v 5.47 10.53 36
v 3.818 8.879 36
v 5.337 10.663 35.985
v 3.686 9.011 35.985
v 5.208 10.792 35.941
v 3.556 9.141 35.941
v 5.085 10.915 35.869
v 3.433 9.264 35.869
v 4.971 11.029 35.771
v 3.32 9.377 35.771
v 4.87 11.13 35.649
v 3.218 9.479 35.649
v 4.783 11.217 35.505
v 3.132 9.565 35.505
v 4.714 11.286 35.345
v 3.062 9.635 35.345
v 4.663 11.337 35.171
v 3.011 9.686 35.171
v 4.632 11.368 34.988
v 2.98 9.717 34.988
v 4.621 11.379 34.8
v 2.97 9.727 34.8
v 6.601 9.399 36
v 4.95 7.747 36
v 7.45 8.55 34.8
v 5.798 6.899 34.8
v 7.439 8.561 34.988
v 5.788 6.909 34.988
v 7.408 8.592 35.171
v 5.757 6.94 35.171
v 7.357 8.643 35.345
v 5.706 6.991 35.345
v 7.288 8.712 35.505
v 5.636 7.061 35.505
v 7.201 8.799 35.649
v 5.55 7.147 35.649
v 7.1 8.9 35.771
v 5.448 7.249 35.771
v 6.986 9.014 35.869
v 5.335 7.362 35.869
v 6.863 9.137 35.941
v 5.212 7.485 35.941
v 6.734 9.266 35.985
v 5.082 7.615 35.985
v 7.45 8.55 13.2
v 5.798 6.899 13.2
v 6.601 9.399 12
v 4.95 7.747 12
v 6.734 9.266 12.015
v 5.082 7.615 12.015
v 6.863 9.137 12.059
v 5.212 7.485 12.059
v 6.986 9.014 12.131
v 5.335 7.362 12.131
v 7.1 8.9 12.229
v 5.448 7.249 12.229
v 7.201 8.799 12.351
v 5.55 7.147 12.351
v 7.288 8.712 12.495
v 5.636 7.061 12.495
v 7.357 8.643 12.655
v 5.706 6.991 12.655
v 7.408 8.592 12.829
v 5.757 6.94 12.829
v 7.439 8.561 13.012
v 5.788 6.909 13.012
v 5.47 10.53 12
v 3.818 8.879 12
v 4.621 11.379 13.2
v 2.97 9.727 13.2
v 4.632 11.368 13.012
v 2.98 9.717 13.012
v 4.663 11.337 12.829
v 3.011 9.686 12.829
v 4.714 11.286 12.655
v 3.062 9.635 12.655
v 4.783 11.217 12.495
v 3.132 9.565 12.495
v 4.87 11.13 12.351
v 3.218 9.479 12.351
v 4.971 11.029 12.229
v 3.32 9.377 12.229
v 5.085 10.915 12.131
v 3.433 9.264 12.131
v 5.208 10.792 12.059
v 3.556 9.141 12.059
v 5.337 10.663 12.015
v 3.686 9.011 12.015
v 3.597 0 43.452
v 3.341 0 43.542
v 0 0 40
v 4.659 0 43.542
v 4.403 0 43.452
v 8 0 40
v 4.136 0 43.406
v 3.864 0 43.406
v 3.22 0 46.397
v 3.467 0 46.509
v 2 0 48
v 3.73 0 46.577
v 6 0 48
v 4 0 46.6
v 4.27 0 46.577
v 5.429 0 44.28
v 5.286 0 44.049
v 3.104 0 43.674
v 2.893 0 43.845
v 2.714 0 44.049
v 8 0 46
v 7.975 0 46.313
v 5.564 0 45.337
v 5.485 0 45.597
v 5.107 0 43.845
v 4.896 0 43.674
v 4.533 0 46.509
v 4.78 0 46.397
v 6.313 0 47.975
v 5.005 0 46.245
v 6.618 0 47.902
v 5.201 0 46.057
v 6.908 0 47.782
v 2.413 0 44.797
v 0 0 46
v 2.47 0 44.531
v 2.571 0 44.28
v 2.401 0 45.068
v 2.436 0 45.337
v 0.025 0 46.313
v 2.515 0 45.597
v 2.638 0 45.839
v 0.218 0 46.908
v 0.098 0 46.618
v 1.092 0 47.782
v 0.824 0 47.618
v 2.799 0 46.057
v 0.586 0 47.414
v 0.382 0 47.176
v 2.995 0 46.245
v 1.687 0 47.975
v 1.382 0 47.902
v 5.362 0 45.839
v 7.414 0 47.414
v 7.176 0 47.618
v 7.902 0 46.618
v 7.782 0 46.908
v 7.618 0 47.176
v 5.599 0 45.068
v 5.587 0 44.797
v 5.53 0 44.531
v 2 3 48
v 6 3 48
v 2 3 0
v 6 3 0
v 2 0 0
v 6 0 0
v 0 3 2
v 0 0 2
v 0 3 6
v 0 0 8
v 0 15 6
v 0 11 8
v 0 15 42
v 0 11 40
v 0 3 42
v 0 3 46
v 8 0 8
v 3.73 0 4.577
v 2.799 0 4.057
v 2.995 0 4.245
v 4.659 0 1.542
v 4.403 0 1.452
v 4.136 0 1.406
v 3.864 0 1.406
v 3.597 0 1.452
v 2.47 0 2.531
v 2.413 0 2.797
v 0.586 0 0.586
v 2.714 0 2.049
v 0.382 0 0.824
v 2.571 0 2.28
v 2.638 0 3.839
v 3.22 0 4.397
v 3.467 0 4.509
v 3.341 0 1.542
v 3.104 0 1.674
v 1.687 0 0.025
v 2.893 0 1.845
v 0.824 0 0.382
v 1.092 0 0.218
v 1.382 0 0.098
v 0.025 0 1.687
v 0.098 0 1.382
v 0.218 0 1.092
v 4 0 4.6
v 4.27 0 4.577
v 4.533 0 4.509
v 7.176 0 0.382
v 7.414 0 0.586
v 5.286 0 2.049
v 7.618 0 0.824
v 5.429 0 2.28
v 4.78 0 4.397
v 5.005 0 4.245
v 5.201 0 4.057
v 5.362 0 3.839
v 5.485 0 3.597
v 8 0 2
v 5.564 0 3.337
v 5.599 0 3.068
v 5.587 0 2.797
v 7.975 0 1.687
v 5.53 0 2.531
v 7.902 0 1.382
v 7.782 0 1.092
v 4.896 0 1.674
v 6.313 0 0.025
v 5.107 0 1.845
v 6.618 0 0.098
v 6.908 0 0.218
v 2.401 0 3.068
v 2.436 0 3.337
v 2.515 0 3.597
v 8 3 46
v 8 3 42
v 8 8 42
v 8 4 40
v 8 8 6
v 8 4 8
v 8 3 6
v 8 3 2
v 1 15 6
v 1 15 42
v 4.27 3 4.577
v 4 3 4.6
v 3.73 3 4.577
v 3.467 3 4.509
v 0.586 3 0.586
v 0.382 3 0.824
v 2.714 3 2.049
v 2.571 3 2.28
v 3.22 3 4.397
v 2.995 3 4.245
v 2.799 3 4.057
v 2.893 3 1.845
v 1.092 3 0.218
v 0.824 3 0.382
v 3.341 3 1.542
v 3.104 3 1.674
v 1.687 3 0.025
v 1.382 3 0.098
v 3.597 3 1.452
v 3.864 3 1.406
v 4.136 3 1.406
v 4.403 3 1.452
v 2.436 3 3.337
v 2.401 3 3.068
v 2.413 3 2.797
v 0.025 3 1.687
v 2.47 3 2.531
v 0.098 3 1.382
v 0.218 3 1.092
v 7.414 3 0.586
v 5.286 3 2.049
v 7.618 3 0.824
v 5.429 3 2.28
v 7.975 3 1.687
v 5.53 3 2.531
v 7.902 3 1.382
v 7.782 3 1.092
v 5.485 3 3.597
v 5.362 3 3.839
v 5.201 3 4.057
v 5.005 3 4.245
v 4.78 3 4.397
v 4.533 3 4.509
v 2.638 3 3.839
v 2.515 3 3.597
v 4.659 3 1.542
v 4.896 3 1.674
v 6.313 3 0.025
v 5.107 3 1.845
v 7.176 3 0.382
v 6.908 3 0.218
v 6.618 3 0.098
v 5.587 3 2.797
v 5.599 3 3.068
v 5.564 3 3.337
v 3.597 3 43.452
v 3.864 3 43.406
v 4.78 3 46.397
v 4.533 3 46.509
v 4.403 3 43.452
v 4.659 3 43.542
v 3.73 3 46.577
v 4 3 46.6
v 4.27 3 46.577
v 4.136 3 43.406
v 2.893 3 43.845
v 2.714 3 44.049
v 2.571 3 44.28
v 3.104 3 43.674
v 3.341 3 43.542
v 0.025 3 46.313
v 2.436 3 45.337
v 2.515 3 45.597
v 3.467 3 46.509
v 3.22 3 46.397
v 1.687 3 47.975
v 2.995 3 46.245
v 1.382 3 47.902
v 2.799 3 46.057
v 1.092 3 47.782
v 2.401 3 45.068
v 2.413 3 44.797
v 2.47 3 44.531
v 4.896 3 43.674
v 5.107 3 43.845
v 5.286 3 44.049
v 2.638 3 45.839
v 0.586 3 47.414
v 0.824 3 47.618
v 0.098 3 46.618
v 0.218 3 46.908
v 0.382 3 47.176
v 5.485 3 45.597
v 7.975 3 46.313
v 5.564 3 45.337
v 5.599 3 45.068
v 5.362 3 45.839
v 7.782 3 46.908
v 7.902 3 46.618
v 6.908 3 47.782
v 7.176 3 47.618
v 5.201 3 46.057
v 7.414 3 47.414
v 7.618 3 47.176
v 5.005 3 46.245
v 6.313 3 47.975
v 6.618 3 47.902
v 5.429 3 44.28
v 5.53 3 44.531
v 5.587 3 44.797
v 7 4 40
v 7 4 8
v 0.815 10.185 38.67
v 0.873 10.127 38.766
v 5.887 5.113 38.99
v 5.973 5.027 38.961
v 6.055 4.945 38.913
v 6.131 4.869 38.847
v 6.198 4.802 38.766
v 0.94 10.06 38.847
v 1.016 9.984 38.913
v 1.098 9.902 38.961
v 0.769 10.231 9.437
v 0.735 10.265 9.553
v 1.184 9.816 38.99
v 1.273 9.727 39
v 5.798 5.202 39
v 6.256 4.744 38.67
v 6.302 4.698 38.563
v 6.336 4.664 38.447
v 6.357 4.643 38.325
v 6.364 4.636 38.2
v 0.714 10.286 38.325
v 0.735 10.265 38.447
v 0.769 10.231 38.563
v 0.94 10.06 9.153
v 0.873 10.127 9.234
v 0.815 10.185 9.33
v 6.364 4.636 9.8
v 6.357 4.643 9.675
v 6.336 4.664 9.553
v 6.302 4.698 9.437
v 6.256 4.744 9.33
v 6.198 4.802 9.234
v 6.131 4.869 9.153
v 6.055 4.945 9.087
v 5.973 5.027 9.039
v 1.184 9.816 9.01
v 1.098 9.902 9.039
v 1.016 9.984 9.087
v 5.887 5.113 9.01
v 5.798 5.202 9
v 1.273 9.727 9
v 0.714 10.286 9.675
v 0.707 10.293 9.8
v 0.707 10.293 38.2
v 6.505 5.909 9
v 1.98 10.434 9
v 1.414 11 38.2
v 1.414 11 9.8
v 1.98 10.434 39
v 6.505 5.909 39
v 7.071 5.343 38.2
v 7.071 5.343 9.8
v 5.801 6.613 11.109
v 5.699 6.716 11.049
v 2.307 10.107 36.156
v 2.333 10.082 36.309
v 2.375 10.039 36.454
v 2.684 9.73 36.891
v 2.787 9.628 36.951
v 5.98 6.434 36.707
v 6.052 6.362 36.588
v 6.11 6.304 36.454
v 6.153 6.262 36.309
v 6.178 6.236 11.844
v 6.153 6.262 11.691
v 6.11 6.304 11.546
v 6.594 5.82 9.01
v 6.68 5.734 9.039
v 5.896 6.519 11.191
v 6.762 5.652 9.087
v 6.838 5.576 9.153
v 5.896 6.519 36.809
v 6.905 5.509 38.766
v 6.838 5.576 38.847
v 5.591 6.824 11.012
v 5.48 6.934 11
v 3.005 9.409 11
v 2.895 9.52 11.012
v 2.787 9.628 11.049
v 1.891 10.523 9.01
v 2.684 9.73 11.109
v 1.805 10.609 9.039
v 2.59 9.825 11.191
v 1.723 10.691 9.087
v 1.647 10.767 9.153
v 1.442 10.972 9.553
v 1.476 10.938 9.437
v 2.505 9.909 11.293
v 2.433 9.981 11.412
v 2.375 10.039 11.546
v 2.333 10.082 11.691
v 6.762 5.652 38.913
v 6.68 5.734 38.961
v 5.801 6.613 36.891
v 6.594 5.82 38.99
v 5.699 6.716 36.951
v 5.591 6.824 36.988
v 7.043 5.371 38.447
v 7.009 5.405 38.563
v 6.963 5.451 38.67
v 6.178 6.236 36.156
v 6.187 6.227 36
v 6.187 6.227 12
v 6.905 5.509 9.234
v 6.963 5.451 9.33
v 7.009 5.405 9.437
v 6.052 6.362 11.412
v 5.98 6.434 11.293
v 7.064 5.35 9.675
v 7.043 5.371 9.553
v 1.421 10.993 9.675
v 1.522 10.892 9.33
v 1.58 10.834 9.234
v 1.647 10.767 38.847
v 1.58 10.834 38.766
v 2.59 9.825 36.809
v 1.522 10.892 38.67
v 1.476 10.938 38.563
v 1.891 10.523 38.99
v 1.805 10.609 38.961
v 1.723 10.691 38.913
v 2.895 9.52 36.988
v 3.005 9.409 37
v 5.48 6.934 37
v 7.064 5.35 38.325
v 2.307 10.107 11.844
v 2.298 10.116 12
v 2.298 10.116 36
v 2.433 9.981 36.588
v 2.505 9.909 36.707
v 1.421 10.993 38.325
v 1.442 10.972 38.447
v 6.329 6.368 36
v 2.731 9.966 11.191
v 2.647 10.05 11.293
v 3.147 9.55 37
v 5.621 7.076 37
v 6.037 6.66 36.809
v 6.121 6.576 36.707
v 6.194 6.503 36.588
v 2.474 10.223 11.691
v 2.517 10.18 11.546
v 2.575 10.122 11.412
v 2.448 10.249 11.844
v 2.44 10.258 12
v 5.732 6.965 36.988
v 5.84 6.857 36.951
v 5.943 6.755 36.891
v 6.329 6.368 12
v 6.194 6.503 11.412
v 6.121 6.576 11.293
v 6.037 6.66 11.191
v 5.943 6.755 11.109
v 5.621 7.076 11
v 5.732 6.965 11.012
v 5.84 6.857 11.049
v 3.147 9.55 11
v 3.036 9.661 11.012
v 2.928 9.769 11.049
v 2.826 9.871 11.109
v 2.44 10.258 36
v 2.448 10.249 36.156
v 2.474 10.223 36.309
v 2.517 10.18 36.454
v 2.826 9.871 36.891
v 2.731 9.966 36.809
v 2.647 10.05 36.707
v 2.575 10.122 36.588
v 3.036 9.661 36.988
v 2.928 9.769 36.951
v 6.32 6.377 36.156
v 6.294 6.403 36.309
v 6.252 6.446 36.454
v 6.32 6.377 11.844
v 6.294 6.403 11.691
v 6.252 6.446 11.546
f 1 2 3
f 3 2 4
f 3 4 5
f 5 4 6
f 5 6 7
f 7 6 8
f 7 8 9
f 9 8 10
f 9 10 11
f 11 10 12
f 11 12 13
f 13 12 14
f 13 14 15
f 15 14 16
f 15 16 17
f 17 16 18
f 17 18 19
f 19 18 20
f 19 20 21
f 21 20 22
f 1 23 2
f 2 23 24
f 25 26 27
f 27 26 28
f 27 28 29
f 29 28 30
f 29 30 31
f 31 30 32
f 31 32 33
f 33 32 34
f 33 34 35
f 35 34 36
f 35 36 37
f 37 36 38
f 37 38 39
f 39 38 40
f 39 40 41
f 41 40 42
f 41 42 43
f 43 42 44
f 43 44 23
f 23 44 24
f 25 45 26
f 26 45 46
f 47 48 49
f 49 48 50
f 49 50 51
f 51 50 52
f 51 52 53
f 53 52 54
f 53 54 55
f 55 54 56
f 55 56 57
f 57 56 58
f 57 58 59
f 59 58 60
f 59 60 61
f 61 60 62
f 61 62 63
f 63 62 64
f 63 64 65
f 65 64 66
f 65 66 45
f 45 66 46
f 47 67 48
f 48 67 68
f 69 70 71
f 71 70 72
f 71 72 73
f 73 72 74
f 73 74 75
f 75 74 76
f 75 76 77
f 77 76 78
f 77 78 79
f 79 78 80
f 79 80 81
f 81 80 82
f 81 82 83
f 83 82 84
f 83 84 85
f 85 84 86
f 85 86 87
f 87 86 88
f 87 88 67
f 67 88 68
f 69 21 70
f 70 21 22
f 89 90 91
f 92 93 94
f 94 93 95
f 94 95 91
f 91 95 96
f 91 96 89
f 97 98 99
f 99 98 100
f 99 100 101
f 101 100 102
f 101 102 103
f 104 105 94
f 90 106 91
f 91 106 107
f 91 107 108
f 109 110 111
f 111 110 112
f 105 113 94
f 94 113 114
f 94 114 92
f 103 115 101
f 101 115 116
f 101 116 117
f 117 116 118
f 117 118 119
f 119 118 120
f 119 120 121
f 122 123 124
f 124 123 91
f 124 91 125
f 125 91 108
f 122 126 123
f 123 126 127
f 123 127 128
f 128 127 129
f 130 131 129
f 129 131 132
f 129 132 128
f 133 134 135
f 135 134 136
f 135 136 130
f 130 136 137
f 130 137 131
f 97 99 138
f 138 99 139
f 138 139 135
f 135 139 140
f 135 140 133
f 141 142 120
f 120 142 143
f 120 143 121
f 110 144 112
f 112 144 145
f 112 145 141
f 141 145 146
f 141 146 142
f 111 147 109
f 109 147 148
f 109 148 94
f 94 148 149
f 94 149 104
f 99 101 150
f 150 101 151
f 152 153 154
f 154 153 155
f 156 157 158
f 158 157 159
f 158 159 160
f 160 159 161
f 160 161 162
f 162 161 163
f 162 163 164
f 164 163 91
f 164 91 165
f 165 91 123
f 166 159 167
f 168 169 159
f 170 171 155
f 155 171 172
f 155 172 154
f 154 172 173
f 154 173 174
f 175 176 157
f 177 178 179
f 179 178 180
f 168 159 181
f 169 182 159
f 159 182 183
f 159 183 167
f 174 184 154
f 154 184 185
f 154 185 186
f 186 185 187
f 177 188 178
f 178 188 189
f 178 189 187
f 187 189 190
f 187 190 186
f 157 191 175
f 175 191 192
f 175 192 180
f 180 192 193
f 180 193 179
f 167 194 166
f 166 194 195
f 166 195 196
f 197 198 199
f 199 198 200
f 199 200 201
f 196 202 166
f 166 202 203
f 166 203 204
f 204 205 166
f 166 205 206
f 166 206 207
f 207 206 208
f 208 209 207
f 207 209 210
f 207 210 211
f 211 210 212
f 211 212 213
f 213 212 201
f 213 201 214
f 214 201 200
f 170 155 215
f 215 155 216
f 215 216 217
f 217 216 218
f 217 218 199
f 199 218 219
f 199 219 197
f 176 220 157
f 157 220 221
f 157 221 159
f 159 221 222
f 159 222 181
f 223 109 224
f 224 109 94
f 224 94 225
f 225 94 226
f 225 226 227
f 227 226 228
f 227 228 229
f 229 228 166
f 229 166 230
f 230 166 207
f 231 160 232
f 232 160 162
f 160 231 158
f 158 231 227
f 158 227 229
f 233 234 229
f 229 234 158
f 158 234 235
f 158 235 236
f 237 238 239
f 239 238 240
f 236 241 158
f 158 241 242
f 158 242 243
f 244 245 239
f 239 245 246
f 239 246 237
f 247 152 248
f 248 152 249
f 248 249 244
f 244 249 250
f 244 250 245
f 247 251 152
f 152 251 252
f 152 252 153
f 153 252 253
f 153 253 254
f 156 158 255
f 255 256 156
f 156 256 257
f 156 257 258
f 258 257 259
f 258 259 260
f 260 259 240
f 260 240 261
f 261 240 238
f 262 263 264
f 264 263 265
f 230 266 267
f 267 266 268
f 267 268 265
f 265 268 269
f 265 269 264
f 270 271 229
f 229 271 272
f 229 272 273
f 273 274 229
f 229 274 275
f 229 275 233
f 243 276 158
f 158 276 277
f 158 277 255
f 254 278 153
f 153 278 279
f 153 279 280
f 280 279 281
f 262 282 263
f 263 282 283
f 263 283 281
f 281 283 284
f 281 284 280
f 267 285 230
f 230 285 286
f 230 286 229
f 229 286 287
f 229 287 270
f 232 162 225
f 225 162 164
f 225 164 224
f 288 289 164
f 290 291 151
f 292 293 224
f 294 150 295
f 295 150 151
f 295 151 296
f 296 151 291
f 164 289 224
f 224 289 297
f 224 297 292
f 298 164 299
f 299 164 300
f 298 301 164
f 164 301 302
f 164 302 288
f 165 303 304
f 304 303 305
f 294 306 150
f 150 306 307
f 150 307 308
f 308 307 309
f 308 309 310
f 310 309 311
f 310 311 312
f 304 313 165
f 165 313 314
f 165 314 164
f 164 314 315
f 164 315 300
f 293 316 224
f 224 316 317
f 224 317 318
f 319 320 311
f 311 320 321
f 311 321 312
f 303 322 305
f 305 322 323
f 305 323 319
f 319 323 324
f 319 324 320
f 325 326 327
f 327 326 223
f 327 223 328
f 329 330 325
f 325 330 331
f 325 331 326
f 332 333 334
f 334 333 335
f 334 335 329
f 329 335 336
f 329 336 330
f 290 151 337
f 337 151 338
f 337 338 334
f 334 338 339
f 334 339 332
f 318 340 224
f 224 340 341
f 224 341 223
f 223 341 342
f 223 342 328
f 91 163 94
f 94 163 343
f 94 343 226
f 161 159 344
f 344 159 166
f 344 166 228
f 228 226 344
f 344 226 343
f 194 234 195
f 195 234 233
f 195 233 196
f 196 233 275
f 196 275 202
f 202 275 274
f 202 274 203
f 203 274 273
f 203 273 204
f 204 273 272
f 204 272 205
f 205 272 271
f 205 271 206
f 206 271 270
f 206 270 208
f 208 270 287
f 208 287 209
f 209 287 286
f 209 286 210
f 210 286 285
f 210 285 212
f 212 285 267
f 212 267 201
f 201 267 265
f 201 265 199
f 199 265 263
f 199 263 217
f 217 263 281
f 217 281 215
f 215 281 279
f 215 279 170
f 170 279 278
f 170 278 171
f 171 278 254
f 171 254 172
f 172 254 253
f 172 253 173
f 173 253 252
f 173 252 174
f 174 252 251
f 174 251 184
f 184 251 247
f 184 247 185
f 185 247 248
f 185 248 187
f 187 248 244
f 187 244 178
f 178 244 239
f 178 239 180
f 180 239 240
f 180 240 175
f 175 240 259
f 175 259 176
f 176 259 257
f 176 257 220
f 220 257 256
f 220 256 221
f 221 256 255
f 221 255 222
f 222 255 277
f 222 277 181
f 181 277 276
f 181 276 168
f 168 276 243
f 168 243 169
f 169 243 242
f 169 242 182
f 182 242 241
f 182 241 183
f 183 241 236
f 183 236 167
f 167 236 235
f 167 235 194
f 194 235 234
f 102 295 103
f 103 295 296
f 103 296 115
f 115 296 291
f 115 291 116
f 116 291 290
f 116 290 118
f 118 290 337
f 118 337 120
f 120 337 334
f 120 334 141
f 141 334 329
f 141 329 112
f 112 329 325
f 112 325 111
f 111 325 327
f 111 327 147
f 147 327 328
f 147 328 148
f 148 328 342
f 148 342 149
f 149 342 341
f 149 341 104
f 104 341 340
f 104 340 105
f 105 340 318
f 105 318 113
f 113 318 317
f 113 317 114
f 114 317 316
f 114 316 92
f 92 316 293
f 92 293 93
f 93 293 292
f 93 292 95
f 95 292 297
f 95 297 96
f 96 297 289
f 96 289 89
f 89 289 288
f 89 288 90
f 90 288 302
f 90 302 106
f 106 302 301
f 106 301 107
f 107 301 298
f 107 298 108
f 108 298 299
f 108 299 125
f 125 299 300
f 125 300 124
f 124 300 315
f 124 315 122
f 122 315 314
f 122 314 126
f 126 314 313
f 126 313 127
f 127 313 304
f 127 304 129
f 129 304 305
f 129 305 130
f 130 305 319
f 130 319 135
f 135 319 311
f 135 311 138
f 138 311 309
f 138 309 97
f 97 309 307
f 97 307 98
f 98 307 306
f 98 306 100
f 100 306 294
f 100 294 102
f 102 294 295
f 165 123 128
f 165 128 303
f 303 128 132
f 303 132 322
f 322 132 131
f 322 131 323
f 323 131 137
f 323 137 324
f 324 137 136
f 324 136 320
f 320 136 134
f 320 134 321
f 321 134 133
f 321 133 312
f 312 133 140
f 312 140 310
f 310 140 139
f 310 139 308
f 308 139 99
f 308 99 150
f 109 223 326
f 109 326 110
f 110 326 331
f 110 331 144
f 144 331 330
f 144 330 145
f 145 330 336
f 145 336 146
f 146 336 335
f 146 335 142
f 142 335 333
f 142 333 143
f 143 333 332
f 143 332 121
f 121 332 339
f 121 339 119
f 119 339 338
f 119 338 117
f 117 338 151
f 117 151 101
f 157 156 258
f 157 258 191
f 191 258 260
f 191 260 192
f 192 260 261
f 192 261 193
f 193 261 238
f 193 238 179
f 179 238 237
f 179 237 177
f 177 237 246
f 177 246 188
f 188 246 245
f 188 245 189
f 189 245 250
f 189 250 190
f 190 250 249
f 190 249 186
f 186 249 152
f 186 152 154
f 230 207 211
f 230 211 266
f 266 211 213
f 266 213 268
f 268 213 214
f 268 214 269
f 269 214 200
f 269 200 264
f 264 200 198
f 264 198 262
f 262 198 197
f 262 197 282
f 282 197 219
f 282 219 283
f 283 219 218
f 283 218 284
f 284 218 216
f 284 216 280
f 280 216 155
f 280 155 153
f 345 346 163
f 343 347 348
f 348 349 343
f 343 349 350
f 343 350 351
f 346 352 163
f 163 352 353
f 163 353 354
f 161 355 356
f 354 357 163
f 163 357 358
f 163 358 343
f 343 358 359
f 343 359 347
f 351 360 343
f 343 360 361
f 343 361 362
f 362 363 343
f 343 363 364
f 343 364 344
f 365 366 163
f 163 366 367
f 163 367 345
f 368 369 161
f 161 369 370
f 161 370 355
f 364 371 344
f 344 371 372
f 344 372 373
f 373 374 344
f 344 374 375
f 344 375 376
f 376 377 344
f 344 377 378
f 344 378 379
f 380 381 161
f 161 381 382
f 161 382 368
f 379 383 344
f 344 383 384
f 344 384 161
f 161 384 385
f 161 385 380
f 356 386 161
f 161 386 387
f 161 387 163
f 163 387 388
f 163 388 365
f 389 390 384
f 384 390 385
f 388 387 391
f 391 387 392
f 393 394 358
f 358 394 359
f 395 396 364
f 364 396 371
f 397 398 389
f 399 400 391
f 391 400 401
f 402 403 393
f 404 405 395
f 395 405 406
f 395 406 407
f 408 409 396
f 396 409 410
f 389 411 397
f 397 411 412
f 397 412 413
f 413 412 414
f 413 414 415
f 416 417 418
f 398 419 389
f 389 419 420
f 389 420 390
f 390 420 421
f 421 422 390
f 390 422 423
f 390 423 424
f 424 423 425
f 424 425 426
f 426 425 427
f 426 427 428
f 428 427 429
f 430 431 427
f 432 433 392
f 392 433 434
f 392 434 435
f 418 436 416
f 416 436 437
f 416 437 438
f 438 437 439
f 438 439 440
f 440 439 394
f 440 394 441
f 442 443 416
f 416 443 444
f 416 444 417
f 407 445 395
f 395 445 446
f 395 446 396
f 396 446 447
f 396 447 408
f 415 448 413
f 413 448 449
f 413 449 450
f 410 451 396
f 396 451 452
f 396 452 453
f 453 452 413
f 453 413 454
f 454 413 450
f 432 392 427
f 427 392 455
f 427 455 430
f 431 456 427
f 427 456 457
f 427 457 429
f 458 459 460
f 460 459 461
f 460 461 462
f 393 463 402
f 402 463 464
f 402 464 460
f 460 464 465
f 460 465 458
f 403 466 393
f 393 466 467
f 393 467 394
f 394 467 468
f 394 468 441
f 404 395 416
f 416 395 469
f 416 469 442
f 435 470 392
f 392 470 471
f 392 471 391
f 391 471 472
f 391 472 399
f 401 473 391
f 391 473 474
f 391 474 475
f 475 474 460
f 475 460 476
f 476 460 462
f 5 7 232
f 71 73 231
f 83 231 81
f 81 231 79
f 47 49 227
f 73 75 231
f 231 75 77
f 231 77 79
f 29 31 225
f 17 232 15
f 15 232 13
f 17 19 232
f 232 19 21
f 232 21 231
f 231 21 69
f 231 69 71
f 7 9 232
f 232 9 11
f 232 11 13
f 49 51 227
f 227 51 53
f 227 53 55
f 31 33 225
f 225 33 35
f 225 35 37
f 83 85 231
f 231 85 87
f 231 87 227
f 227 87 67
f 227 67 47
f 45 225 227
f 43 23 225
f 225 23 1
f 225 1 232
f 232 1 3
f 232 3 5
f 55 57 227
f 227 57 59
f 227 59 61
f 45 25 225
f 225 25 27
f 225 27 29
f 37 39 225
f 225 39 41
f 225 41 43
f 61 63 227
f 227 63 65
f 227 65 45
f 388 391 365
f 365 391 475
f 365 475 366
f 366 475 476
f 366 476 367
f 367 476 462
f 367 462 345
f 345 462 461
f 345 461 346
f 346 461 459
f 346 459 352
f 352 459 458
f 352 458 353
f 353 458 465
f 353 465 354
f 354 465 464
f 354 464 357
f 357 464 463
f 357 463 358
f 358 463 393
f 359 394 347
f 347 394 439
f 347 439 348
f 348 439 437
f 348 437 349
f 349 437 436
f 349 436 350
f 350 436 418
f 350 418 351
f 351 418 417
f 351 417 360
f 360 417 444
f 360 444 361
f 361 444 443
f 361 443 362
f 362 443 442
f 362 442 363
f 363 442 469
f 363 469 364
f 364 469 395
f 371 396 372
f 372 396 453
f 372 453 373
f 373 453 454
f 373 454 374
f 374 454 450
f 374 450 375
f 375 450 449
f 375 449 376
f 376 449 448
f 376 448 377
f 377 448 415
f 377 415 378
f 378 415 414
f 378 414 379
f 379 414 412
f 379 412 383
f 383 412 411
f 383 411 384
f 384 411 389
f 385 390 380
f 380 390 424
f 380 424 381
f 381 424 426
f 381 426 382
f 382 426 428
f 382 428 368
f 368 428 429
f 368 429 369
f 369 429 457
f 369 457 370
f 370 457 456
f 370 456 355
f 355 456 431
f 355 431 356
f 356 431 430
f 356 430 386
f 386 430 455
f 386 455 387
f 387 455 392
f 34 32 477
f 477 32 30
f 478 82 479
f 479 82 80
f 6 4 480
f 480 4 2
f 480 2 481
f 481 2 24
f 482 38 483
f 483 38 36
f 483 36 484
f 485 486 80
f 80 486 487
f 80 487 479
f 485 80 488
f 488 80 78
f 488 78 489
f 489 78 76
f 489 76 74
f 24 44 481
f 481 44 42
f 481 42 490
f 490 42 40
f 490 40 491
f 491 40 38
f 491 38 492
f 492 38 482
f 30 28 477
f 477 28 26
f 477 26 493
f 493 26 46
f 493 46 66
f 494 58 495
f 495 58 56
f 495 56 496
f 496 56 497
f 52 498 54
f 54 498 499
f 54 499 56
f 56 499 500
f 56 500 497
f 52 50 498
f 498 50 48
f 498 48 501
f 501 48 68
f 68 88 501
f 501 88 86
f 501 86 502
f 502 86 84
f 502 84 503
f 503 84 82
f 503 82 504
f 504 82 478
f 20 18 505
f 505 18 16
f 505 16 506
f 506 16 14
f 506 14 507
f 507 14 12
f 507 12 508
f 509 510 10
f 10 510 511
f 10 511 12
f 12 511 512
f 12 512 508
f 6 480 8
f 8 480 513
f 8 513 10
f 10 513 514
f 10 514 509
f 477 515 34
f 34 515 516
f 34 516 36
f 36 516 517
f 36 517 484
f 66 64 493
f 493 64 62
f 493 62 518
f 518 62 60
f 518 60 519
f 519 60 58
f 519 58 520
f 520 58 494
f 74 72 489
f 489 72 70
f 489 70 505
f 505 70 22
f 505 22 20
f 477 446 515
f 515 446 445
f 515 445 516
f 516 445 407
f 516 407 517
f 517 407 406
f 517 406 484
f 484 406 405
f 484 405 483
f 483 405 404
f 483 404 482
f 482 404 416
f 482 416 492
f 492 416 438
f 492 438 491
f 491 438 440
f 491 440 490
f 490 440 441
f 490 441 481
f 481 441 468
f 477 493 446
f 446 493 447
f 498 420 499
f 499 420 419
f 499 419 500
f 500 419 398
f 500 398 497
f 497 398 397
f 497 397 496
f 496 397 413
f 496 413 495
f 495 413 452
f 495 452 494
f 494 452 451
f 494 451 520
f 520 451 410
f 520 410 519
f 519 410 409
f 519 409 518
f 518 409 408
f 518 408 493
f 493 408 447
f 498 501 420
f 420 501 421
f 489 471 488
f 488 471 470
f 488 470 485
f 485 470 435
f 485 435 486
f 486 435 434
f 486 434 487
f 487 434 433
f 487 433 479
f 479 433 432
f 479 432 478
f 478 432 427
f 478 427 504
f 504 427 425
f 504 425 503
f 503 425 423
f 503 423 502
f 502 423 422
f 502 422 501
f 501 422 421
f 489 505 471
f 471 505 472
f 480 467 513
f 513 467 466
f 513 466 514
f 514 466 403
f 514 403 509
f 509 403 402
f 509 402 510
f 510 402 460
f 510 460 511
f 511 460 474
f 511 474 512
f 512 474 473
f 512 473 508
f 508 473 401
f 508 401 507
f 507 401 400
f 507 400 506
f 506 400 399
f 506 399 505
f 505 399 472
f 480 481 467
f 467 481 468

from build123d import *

# Parameters (mm, degrees)
SKETCH_1_W          = 8
SKETCH_1_H          = 15
EXTRUDE_1_DEPTH     = 48
SKETCH_2_W          = 8
SKETCH_2_H          = 6
CUT_EXTRUDE_1_DEPTH = 12
SKETCH_4_W          = 8
SKETCH_4_H          = 32
CUT_EXTRUDE_3_DEPTH = 4
SKETCH_5_R          = 1.6
CUT_EXTRUDE_4_DEPTH = 3
FILLET_1_R          = 2
CUT_EXTRUDE_5_DEPTH = 32
SKETCH_6_W          = 30
SKETCH_6_H          = 8
CUT_EXTRUDE_6_DEPTH = 1
CHAMFER_1_SIZE      = 7
FILLET_2_R          = 0.8
CUT_EXTRUDE_7_DEPTH = 10
CUT_EXTRUDE_8_DEPTH = 0.2


with BuildPart() as part:
    # 草图1 → 凸台-拉伸1 (new body)
    with BuildSketch(Plane.XY):
        with Locations((4, 7.5)):
            Rectangle(SKETCH_1_W, SKETCH_1_H)
    extrude(amount=EXTRUDE_1_DEPTH)

    # 草图2 → 切除-拉伸1 (cut)
    with BuildSketch(Plane(origin=(0, 15, 0), x_dir=(1, 0, 0), z_dir=(0, 1, 0))):
        with Locations((4, -3)):
            Rectangle(SKETCH_2_W, SKETCH_2_H)
        with Locations((4, -45)):
            Rectangle(SKETCH_2_W, SKETCH_2_H)
    extrude(amount=-CUT_EXTRUDE_1_DEPTH, mode=Mode.SUBTRACT)

    # 草图4 → 切除-拉伸3 (cut)
    with BuildSketch(Plane.XZ):
        with Locations((4, 24)):
            Rectangle(SKETCH_4_W, SKETCH_4_H)
    extrude(amount=-CUT_EXTRUDE_3_DEPTH, mode=Mode.SUBTRACT)

    # 草图5 → 切除-拉伸4 (cut)
    with BuildSketch(Plane(origin=(0, 3, 0), x_dir=(1, 0, 0), z_dir=(0, 1, 0))):
        with Locations(Location((4, -3, 0), (0, 0, 270))):
            Circle(SKETCH_5_R)
        with Locations(Location((4, -45, 0), (0, 0, 270))):
            Circle(SKETCH_5_R)
    extrude(amount=-CUT_EXTRUDE_4_DEPTH, mode=Mode.SUBTRACT)

    # 圆角1
    fillet_1_edges = [part.edges().sort_by_distance(p)[0] for p in [
        (8, 1.5, 48),
        (0, 1.5, 0),
        (0, 1.5, 48),
        (8, 1.5, 0),
    ]]
    fillet(fillet_1_edges, radius=FILLET_1_R)

    # 草图3 → 切除-拉伸5 (cut)
    with BuildSketch(Plane.XY.offset(40)):
        Polygon((0, 4), (7, 4), (0, 11), align=None)
    extrude(amount=-CUT_EXTRUDE_5_DEPTH, mode=Mode.SUBTRACT)

    # 草图6 → 切除-拉伸6 (cut)
    with BuildSketch(Plane(origin=(5.5, 5.5, 0), x_dir=(0, 0, 1), z_dir=(-0.7071067811865474, -0.7071067811865477, 0))):
        with Locations((24, 2.778174593)):
            Rectangle(SKETCH_6_W, SKETCH_6_H)
    extrude(amount=-CUT_EXTRUDE_6_DEPTH, mode=Mode.SUBTRACT)

    # 倒角1
    chamfer_1_edges = [part.edges().sort_by_distance(p)[0] for p in [
        (8, 15, 24),
    ]]
    chamfer(chamfer_1_edges, length=CHAMFER_1_SIZE)

    # 圆角2
    fillet_2_edges = [part.edges().sort_by_distance(p)[0] for p in [
        (6.717514421, 4.98959236, 9),
        (1.060660172, 10.646446609, 9),
        (1.060660172, 10.646446609, 39),
        (6.717514421, 4.98959236, 39),
    ]]
    fillet(fillet_2_edges, radius=FILLET_2_R)

    # 草图7 → 切除-拉伸7 (cut)
    with BuildSketch(Plane(origin=(6.207106781, 6.207106781, 0), x_dir=(0, 0, 1), z_dir=(-0.7071067811865475, -0.7071067811865477, 0))):
        with BuildLine():
            Line((13.2, 4.778174593), (34.8, 4.778174593))
            ThreePointArc((34.8, 4.778174593), (35.648528137, 4.42670273), (36, 3.578174593))
            Line((36, 3.578174593), (36, 1.978174593))
            ThreePointArc((36, 1.978174593), (35.648528137, 1.129646456), (34.8, 0.778174593))
            Line((34.8, 0.778174593), (13.2, 0.778174593))
            ThreePointArc((13.2, 0.778174593), (12.351471863, 1.129646456), (12, 1.978174593))
            Line((12, 1.978174593), (12, 3.578174593))
            ThreePointArc((12, 3.578174593), (12.351471863, 4.42670273), (13.2, 4.778174593))
        make_face()
    extrude(amount=-CUT_EXTRUDE_7_DEPTH, mode=Mode.SUBTRACT)

    # 草图8 → 切除-拉伸8 (cut)
    with BuildSketch(Plane(origin=(6.207106781, 6.207106781, 0), x_dir=(0, 0, 1), z_dir=(-0.7071067811865475, -0.7071067811865477, 0))):
        with BuildLine():
            Line((12, 5.528174593), (36, 5.528174593))
            ThreePointArc((36, 5.528174593), (36.707106781, 5.235281374), (37, 4.528174593))
            Line((37, 4.528174593), (37, 1.028174593))
            ThreePointArc((37, 1.028174593), (36.707106781, 0.321067812), (36, 0.028174593))
            Line((36, 0.028174593), (12, 0.028174593))
            ThreePointArc((12, 0.028174593), (11.292893219, 0.321067812), (11, 1.028174593))
            Line((11, 1.028174593), (11, 4.528174593))
            ThreePointArc((11, 4.528174593), (11.292893219, 5.235281374), (12, 5.528174593))
        make_face()
    extrude(amount=-CUT_EXTRUDE_8_DEPTH, mode=Mode.SUBTRACT)


solid = part.part
